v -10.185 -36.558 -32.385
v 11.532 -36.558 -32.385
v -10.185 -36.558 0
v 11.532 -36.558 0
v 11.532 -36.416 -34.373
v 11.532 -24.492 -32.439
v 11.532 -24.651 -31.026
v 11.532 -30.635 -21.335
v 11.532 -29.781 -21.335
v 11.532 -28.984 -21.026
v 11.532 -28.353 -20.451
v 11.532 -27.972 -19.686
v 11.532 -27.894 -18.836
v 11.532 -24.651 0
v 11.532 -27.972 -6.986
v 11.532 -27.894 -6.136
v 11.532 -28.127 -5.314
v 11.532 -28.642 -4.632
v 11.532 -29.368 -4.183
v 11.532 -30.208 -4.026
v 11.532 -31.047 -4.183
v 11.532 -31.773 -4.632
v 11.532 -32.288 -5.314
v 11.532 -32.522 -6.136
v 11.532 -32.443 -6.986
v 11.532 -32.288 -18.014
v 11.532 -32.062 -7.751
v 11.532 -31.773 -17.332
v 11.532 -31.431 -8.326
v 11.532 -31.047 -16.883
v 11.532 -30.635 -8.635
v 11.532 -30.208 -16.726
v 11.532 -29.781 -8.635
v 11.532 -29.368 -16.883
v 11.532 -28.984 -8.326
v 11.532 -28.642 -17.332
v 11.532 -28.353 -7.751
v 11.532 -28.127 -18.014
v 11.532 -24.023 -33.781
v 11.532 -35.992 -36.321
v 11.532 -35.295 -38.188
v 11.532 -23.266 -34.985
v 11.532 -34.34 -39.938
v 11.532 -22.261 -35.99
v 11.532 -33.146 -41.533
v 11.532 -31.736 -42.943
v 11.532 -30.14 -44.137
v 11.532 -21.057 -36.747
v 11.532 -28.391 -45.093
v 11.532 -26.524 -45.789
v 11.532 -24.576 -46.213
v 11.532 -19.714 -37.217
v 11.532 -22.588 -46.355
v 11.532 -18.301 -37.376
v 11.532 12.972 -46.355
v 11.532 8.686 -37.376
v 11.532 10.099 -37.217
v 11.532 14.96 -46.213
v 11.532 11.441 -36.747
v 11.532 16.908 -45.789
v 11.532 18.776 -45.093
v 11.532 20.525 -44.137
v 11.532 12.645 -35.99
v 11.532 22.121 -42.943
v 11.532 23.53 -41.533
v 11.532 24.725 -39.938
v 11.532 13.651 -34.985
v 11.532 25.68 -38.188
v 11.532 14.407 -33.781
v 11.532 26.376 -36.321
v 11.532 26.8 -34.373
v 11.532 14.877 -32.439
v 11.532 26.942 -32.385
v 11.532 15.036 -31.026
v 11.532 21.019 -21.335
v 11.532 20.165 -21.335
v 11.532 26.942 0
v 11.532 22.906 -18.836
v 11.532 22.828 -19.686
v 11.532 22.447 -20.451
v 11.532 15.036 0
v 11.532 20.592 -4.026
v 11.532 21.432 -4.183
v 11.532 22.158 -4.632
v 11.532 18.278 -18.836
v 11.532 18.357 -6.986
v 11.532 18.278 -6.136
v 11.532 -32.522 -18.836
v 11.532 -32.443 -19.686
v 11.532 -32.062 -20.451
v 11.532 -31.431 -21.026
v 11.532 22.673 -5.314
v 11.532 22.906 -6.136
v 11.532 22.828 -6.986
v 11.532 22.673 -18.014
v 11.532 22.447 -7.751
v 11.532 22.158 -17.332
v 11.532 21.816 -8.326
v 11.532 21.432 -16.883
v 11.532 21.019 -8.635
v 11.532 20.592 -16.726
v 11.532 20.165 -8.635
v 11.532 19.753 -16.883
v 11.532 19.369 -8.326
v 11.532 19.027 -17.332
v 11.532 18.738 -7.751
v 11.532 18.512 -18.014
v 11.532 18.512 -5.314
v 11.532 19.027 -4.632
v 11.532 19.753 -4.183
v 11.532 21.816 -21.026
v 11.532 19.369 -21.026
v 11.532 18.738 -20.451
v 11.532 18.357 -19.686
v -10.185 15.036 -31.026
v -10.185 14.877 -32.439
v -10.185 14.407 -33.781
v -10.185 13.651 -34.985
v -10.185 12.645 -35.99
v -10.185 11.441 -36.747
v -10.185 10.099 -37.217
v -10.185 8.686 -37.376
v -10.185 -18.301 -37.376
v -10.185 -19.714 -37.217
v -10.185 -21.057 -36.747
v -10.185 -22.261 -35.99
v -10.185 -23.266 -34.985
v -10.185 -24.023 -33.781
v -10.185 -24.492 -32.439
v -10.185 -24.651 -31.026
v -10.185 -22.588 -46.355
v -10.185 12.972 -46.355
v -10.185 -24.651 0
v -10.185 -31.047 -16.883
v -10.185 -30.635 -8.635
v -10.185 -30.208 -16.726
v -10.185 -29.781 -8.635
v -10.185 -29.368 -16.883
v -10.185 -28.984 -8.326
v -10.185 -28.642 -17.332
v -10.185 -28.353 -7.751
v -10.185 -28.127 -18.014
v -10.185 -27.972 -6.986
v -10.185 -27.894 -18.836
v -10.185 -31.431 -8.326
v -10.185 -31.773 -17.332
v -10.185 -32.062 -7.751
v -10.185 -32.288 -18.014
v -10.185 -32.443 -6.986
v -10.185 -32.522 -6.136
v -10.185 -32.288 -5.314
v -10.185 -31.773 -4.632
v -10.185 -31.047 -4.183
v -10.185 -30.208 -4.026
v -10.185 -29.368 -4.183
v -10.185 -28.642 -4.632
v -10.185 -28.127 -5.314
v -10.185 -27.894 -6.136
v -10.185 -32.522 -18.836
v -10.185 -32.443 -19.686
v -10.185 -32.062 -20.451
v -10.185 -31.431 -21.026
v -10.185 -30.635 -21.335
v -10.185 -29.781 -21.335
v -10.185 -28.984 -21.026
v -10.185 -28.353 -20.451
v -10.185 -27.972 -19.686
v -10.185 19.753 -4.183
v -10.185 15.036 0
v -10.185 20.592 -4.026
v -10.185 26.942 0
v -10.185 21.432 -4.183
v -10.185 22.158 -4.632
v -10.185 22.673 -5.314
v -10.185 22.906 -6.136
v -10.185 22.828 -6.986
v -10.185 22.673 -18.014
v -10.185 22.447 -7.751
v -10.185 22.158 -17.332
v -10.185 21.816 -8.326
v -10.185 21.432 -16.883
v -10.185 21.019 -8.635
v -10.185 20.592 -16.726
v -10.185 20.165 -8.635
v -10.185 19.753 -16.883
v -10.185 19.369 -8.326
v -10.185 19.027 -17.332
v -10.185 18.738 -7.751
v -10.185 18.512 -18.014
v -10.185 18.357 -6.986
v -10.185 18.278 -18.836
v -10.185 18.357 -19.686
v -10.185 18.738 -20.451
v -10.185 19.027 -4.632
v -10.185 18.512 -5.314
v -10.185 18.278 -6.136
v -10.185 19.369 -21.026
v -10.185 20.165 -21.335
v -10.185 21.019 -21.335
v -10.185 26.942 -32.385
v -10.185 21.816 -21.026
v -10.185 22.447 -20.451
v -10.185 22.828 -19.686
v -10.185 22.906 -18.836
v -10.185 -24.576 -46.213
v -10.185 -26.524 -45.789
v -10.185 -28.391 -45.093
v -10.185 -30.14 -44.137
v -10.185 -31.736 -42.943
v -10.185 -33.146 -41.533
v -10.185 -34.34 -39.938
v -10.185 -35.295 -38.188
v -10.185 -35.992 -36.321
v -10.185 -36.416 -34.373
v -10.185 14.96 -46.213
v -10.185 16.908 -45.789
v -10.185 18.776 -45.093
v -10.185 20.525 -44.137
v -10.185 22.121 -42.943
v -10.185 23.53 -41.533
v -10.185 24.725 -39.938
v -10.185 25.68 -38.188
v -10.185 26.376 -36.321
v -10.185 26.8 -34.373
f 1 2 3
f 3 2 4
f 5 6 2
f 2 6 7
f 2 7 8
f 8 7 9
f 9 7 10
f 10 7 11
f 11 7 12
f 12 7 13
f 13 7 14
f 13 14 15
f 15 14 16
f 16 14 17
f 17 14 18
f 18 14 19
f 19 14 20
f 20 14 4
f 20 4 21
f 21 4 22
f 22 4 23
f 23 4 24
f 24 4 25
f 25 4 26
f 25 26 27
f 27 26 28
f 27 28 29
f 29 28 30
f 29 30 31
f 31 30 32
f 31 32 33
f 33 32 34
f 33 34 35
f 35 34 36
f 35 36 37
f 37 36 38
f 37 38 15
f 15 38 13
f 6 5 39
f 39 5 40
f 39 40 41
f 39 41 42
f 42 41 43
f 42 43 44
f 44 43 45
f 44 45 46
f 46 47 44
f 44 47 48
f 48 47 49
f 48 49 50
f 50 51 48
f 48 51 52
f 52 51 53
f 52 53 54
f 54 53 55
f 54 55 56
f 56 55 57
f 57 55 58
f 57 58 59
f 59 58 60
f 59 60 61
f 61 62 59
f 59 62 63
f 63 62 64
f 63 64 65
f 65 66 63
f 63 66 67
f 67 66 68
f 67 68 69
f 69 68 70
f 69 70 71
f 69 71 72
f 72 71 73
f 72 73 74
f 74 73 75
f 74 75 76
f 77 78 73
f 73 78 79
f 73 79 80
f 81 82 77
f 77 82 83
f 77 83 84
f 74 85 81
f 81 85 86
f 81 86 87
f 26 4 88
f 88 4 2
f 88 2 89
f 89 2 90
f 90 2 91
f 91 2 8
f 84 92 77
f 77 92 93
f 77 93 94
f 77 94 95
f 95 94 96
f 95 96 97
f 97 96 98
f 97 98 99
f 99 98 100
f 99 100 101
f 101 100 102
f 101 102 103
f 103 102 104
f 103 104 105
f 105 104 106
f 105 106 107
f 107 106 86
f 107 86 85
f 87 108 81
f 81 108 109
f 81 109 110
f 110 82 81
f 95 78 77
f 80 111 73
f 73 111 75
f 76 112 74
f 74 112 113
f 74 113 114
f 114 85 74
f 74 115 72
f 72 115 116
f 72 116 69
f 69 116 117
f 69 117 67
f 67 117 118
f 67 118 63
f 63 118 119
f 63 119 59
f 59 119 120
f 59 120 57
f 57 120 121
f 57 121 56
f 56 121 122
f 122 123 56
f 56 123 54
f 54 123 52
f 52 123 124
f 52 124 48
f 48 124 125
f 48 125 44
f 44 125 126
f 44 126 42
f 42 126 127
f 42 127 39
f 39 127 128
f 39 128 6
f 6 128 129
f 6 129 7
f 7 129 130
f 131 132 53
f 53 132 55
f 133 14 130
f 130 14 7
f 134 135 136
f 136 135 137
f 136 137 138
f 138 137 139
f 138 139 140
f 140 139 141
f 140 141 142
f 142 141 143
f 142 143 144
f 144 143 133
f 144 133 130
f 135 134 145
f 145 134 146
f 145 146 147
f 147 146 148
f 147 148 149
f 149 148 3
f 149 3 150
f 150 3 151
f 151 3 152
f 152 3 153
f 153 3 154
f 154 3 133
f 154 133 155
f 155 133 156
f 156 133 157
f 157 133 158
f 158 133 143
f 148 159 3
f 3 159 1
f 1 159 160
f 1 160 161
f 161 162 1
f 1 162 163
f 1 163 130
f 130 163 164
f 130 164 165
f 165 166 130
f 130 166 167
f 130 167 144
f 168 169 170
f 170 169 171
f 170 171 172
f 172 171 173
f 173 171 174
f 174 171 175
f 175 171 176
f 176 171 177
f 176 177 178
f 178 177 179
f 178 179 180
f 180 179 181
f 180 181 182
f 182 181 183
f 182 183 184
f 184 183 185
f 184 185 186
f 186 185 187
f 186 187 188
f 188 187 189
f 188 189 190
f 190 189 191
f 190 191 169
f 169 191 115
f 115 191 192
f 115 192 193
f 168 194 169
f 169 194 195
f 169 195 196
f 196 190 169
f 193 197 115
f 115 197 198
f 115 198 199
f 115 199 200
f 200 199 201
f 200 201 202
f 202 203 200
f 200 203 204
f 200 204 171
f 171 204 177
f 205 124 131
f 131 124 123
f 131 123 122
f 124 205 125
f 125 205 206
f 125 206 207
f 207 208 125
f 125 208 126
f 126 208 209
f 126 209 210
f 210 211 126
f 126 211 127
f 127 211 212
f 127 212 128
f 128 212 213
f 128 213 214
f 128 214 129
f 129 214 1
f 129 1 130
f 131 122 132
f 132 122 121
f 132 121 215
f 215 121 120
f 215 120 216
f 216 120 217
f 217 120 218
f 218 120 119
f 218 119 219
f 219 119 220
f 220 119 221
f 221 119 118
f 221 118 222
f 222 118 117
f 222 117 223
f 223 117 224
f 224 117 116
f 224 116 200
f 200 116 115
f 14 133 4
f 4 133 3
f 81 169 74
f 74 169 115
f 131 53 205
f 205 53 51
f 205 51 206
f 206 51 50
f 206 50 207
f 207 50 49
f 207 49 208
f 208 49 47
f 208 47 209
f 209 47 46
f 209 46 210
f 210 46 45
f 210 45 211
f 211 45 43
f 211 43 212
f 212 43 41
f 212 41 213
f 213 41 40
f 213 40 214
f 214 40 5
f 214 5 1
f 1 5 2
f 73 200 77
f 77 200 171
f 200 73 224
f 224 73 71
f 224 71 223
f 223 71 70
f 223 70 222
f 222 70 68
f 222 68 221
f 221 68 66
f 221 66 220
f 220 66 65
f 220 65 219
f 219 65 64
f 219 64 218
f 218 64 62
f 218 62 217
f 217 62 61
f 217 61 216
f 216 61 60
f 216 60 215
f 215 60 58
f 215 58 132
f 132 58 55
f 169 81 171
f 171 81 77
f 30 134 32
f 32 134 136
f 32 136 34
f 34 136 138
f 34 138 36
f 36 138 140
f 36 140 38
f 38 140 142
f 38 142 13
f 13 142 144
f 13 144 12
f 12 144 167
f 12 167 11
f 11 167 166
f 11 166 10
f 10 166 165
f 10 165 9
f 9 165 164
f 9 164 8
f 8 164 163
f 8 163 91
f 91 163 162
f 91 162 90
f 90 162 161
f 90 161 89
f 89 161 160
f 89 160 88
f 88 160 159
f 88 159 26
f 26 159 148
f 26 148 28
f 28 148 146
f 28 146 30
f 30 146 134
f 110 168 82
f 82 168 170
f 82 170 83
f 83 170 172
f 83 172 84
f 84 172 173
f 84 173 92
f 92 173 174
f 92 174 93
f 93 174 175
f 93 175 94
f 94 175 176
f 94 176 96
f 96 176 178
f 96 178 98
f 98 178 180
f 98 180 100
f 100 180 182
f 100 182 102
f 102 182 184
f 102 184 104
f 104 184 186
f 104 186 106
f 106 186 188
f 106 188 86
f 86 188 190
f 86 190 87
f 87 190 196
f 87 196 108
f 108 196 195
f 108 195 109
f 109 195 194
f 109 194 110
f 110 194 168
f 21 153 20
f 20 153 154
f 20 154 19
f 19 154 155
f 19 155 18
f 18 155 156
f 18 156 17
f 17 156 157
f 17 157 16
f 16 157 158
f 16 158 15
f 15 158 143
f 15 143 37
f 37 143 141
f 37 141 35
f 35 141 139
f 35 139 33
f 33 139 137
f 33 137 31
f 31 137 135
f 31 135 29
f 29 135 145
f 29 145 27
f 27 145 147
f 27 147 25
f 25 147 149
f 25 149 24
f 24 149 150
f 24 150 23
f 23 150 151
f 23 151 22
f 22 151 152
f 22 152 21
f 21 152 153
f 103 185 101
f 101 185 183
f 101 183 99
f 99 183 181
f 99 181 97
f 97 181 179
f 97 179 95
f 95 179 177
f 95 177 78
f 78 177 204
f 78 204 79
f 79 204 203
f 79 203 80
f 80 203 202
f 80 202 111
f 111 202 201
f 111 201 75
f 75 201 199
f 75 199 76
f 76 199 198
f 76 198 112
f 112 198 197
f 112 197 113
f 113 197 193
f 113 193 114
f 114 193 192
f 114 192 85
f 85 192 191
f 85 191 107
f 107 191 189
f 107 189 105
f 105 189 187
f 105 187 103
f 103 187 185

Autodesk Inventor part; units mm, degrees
ref_plane "YZ Plane" through (0, 0, 0) normal (1, 0, 0) x (0, 1, 0)
ref_plane "XZ Plane" through (0, 0, 0) normal (0, 1, 0) x (-1, 0, 0)
ref_plane "XY Plane" through (0, 0, 0) normal (0, 0, 1) x (1, 0, 0)
sketch "Sketch4" plane through (0, 0, 0) normal (0, 0, 1) x (1, 0, 0)
  line L0 (10.9923, 14.2423) -> (-9.6452, 14.2423)
  line L1 (11.786, 15.036) -> (11.786, 25.9263)
  line L2 (13.3735, 26.9423) -> (11.786, 26.9423)
  line L3 (-10.439, 15.036) -> (-10.439, 25.9263)
  line L4 (-10.439, 26.9423) -> (-12.0265, 26.9423)
  arc A0 (-10.439, 15.036) -> (-9.6452, 14.2423) centre (-9.6452, 15.036) ccw
  arc A1 (10.9923, 14.2423) -> (11.786, 15.036) centre (10.9923, 15.036) ccw
  arc A2 (11.786, -24.6515) -> (10.9923, -23.8577) centre (10.9923, -24.6515) ccw
  line L5 (-9.6452, -23.8577) -> (10.9923, -23.8577)
  arc A3 (-9.6452, -23.8577) -> (-10.439, -24.6515) centre (-9.6452, -24.6515) ccw
  line L6 (-10.439, -24.6515) -> (-10.439, -36.5577)
  line L7 (11.786, -24.6515) -> (11.786, -36.5577)
  line L8 (11.786, 26.9423) -> (11.786, 25.9263)
  line L9 (-10.439, 26.9423) -> (-10.439, 25.9263)
  line L10 (11.786, -24.6515) -> (-10.439, -24.6515)
  line L11 (11.786, 15.036) -> (-10.439, 15.036)
  line L12 (11.786, 26.9423) -> (11.532, 26.9423)
  line L13 (11.532, 26.9423) -> (11.532, 15.036)
  line L14 (-10.439, 26.9423) -> (-10.185, 26.9423)
  line L15 (-10.185, 26.9423) -> (-10.185, 15.036)
  line L16 (11.532, 26.9423) -> (-10.185, 26.9423)
  line L17 (11.786, -24.6515) -> (11.532, -24.6515)
  line L18 (11.532, -24.6515) -> (11.532, -36.5577)
  line L19 (11.532, -36.5577) -> (11.786, -36.5577)
  line L20 (11.786, -36.5577) -> (11.786, -24.6515)
  line L21 (-10.439, -24.6515) -> (-10.185, -24.6515)
  line L22 (-10.185, -24.6515) -> (-10.185, -36.5577)
  line L23 (-10.185, -36.5577) -> (-10.439, -36.5577)
  line L24 (-10.439, -36.5577) -> (-10.439, -24.6515)
  line L25 (11.532, -36.5577) -> (-10.439, -36.5577)
  line L26 (0, 14.2423) -> (0, -23.8577)
  point P0 (0, 0)
  dimension "d5" = 22.225
  dimension "d6" = 0.254
  dimension "d7" = 0.254
  dimension "d14" = 38.1
extrude "Extrusion2" add sketch "Sketch4" against normal blind 25.4 contours L11 L15 L16 L13 | L18 L25 L22 L10
sketch "Sketch5" plane through (11.532, -36.5577, 0) normal (1, 0, 0) x (0, 0, -1)
  point P0 (0, 36.5577)
sketch "Sketch6" plane through (11.532, -36.5577, 0) normal (1, 0, 0) x (0, 0, -1)
  line L0 (0, 51.5938) -> (0, 63.5) projected
  line L1 (0, 51.5938) -> (25.4, 51.5938) projected
  line L2 (25.4, 63.5) -> (25.4, 51.5938) projected
  line L3 (0, 63.5) -> (25.4, 63.5) projected
  line L4 (0, 0) -> (0, 11.9062) projected
  line L5 (0, 0) -> (25.4, 0) projected
  line L6 (25.4, 11.9062) -> (25.4, 0) projected
  line L7 (0, 11.9062) -> (25.4, 11.9062) projected
  line L8 (25.4, 63.5) -> (25.4, 57.15)
  line L9 (25.4, 57.15) -> (19.05, 57.15)
  line L10 (25.4, 0) -> (25.4, 6.35)
  line L11 (25.4, 6.35) -> (19.05, 6.35)
  line L12 (25.4, 62.484) -> (25.4, 51.5938)
  line L13 (37.3758, 42.3425) -> (37.3758, 45.2438)
  line L14 (37.3758, 63.5) -> (25.4, 63.5)
  line L15 (37.3758, 0) -> (25.4, 0)
  line L16 (25.4, 63.5) -> (37.3758, 63.5)
  line L17 (46.355, 51.9072) -> (46.355, 11.5928)
  line L18 (37.3758, 0) -> (25.4, 0)
  line L19 (25.4, 51.5938) -> (31.0258, 51.5938)
  line L20 (25.4, 11.9062) -> (31.0258, 11.9062)
  arc A0 (37.3758, 45.2438) -> (31.0258, 51.5938) centre (31.0258, 45.2438) ccw
  line L21 (46.355, 51.9072) -> (46.355, 50.8)
  arc A1 (46.355, 50.8) -> (37.3758, 63.5) centre (33.6671, 51.3536) ccw
  arc A2 (31.0258, 11.9062) -> (37.3758, 18.2562) centre (31.0258, 18.2562) ccw
  line L22 (46.355, 11.5928) -> (46.355, 12.7)
  arc A3 (37.3758, 0) -> (46.355, 12.7) centre (33.6671, 12.1464) ccw
  line L23 (37.3758, 42.3425) -> (37.3758, 18.2562)
  line L24 (25.4, 6.35) -> (19.05, 6.35)
  circle A4 centre (19.05, 57.15) radius 2.3241
  circle A5 centre (6.35, 57.15) radius 2.3241
  line L25 (25.4, 6.35) -> (19.05, 6.35)
  circle A6 centre (19.05, 6.35) radius 2.3241
  line L26 (19.05, 6.35) -> (6.35, 6.35)
  circle A7 centre (6.35, 6.35) radius 2.3241
  point P0 (0, 36.5577)
  dimension "d15" = 6.35
  dimension "d16" = 6.35
  dimension "d17" = 6.35
  dimension "d35" = 4.6482
  dimension "d36" = 4.6482
  dimension "d37" = 12.7
  dimension "d38" = 4.6482
extrude "Extrusion3" add sketch "Sketch6" against normal up to surface (21.717 mm away) contours L2 L14 A1 L17 A3 L15 L6 L20 A2 L23 L13 A0 L19
extrude "Extrusion4" cut sketch "Sketch6" along normal through all both and the other way through all contours A6 L26 L11 | L11 L26 A6 | A4 | A5 | A7
fillet "Fillet1" radius 13.97 2 edges at (0.6735, 26.9423, -37.3758) (0.6735, -36.5577, -37.3758)
fillet_without_effect "Fillet2"
properties part number "Front_support"
